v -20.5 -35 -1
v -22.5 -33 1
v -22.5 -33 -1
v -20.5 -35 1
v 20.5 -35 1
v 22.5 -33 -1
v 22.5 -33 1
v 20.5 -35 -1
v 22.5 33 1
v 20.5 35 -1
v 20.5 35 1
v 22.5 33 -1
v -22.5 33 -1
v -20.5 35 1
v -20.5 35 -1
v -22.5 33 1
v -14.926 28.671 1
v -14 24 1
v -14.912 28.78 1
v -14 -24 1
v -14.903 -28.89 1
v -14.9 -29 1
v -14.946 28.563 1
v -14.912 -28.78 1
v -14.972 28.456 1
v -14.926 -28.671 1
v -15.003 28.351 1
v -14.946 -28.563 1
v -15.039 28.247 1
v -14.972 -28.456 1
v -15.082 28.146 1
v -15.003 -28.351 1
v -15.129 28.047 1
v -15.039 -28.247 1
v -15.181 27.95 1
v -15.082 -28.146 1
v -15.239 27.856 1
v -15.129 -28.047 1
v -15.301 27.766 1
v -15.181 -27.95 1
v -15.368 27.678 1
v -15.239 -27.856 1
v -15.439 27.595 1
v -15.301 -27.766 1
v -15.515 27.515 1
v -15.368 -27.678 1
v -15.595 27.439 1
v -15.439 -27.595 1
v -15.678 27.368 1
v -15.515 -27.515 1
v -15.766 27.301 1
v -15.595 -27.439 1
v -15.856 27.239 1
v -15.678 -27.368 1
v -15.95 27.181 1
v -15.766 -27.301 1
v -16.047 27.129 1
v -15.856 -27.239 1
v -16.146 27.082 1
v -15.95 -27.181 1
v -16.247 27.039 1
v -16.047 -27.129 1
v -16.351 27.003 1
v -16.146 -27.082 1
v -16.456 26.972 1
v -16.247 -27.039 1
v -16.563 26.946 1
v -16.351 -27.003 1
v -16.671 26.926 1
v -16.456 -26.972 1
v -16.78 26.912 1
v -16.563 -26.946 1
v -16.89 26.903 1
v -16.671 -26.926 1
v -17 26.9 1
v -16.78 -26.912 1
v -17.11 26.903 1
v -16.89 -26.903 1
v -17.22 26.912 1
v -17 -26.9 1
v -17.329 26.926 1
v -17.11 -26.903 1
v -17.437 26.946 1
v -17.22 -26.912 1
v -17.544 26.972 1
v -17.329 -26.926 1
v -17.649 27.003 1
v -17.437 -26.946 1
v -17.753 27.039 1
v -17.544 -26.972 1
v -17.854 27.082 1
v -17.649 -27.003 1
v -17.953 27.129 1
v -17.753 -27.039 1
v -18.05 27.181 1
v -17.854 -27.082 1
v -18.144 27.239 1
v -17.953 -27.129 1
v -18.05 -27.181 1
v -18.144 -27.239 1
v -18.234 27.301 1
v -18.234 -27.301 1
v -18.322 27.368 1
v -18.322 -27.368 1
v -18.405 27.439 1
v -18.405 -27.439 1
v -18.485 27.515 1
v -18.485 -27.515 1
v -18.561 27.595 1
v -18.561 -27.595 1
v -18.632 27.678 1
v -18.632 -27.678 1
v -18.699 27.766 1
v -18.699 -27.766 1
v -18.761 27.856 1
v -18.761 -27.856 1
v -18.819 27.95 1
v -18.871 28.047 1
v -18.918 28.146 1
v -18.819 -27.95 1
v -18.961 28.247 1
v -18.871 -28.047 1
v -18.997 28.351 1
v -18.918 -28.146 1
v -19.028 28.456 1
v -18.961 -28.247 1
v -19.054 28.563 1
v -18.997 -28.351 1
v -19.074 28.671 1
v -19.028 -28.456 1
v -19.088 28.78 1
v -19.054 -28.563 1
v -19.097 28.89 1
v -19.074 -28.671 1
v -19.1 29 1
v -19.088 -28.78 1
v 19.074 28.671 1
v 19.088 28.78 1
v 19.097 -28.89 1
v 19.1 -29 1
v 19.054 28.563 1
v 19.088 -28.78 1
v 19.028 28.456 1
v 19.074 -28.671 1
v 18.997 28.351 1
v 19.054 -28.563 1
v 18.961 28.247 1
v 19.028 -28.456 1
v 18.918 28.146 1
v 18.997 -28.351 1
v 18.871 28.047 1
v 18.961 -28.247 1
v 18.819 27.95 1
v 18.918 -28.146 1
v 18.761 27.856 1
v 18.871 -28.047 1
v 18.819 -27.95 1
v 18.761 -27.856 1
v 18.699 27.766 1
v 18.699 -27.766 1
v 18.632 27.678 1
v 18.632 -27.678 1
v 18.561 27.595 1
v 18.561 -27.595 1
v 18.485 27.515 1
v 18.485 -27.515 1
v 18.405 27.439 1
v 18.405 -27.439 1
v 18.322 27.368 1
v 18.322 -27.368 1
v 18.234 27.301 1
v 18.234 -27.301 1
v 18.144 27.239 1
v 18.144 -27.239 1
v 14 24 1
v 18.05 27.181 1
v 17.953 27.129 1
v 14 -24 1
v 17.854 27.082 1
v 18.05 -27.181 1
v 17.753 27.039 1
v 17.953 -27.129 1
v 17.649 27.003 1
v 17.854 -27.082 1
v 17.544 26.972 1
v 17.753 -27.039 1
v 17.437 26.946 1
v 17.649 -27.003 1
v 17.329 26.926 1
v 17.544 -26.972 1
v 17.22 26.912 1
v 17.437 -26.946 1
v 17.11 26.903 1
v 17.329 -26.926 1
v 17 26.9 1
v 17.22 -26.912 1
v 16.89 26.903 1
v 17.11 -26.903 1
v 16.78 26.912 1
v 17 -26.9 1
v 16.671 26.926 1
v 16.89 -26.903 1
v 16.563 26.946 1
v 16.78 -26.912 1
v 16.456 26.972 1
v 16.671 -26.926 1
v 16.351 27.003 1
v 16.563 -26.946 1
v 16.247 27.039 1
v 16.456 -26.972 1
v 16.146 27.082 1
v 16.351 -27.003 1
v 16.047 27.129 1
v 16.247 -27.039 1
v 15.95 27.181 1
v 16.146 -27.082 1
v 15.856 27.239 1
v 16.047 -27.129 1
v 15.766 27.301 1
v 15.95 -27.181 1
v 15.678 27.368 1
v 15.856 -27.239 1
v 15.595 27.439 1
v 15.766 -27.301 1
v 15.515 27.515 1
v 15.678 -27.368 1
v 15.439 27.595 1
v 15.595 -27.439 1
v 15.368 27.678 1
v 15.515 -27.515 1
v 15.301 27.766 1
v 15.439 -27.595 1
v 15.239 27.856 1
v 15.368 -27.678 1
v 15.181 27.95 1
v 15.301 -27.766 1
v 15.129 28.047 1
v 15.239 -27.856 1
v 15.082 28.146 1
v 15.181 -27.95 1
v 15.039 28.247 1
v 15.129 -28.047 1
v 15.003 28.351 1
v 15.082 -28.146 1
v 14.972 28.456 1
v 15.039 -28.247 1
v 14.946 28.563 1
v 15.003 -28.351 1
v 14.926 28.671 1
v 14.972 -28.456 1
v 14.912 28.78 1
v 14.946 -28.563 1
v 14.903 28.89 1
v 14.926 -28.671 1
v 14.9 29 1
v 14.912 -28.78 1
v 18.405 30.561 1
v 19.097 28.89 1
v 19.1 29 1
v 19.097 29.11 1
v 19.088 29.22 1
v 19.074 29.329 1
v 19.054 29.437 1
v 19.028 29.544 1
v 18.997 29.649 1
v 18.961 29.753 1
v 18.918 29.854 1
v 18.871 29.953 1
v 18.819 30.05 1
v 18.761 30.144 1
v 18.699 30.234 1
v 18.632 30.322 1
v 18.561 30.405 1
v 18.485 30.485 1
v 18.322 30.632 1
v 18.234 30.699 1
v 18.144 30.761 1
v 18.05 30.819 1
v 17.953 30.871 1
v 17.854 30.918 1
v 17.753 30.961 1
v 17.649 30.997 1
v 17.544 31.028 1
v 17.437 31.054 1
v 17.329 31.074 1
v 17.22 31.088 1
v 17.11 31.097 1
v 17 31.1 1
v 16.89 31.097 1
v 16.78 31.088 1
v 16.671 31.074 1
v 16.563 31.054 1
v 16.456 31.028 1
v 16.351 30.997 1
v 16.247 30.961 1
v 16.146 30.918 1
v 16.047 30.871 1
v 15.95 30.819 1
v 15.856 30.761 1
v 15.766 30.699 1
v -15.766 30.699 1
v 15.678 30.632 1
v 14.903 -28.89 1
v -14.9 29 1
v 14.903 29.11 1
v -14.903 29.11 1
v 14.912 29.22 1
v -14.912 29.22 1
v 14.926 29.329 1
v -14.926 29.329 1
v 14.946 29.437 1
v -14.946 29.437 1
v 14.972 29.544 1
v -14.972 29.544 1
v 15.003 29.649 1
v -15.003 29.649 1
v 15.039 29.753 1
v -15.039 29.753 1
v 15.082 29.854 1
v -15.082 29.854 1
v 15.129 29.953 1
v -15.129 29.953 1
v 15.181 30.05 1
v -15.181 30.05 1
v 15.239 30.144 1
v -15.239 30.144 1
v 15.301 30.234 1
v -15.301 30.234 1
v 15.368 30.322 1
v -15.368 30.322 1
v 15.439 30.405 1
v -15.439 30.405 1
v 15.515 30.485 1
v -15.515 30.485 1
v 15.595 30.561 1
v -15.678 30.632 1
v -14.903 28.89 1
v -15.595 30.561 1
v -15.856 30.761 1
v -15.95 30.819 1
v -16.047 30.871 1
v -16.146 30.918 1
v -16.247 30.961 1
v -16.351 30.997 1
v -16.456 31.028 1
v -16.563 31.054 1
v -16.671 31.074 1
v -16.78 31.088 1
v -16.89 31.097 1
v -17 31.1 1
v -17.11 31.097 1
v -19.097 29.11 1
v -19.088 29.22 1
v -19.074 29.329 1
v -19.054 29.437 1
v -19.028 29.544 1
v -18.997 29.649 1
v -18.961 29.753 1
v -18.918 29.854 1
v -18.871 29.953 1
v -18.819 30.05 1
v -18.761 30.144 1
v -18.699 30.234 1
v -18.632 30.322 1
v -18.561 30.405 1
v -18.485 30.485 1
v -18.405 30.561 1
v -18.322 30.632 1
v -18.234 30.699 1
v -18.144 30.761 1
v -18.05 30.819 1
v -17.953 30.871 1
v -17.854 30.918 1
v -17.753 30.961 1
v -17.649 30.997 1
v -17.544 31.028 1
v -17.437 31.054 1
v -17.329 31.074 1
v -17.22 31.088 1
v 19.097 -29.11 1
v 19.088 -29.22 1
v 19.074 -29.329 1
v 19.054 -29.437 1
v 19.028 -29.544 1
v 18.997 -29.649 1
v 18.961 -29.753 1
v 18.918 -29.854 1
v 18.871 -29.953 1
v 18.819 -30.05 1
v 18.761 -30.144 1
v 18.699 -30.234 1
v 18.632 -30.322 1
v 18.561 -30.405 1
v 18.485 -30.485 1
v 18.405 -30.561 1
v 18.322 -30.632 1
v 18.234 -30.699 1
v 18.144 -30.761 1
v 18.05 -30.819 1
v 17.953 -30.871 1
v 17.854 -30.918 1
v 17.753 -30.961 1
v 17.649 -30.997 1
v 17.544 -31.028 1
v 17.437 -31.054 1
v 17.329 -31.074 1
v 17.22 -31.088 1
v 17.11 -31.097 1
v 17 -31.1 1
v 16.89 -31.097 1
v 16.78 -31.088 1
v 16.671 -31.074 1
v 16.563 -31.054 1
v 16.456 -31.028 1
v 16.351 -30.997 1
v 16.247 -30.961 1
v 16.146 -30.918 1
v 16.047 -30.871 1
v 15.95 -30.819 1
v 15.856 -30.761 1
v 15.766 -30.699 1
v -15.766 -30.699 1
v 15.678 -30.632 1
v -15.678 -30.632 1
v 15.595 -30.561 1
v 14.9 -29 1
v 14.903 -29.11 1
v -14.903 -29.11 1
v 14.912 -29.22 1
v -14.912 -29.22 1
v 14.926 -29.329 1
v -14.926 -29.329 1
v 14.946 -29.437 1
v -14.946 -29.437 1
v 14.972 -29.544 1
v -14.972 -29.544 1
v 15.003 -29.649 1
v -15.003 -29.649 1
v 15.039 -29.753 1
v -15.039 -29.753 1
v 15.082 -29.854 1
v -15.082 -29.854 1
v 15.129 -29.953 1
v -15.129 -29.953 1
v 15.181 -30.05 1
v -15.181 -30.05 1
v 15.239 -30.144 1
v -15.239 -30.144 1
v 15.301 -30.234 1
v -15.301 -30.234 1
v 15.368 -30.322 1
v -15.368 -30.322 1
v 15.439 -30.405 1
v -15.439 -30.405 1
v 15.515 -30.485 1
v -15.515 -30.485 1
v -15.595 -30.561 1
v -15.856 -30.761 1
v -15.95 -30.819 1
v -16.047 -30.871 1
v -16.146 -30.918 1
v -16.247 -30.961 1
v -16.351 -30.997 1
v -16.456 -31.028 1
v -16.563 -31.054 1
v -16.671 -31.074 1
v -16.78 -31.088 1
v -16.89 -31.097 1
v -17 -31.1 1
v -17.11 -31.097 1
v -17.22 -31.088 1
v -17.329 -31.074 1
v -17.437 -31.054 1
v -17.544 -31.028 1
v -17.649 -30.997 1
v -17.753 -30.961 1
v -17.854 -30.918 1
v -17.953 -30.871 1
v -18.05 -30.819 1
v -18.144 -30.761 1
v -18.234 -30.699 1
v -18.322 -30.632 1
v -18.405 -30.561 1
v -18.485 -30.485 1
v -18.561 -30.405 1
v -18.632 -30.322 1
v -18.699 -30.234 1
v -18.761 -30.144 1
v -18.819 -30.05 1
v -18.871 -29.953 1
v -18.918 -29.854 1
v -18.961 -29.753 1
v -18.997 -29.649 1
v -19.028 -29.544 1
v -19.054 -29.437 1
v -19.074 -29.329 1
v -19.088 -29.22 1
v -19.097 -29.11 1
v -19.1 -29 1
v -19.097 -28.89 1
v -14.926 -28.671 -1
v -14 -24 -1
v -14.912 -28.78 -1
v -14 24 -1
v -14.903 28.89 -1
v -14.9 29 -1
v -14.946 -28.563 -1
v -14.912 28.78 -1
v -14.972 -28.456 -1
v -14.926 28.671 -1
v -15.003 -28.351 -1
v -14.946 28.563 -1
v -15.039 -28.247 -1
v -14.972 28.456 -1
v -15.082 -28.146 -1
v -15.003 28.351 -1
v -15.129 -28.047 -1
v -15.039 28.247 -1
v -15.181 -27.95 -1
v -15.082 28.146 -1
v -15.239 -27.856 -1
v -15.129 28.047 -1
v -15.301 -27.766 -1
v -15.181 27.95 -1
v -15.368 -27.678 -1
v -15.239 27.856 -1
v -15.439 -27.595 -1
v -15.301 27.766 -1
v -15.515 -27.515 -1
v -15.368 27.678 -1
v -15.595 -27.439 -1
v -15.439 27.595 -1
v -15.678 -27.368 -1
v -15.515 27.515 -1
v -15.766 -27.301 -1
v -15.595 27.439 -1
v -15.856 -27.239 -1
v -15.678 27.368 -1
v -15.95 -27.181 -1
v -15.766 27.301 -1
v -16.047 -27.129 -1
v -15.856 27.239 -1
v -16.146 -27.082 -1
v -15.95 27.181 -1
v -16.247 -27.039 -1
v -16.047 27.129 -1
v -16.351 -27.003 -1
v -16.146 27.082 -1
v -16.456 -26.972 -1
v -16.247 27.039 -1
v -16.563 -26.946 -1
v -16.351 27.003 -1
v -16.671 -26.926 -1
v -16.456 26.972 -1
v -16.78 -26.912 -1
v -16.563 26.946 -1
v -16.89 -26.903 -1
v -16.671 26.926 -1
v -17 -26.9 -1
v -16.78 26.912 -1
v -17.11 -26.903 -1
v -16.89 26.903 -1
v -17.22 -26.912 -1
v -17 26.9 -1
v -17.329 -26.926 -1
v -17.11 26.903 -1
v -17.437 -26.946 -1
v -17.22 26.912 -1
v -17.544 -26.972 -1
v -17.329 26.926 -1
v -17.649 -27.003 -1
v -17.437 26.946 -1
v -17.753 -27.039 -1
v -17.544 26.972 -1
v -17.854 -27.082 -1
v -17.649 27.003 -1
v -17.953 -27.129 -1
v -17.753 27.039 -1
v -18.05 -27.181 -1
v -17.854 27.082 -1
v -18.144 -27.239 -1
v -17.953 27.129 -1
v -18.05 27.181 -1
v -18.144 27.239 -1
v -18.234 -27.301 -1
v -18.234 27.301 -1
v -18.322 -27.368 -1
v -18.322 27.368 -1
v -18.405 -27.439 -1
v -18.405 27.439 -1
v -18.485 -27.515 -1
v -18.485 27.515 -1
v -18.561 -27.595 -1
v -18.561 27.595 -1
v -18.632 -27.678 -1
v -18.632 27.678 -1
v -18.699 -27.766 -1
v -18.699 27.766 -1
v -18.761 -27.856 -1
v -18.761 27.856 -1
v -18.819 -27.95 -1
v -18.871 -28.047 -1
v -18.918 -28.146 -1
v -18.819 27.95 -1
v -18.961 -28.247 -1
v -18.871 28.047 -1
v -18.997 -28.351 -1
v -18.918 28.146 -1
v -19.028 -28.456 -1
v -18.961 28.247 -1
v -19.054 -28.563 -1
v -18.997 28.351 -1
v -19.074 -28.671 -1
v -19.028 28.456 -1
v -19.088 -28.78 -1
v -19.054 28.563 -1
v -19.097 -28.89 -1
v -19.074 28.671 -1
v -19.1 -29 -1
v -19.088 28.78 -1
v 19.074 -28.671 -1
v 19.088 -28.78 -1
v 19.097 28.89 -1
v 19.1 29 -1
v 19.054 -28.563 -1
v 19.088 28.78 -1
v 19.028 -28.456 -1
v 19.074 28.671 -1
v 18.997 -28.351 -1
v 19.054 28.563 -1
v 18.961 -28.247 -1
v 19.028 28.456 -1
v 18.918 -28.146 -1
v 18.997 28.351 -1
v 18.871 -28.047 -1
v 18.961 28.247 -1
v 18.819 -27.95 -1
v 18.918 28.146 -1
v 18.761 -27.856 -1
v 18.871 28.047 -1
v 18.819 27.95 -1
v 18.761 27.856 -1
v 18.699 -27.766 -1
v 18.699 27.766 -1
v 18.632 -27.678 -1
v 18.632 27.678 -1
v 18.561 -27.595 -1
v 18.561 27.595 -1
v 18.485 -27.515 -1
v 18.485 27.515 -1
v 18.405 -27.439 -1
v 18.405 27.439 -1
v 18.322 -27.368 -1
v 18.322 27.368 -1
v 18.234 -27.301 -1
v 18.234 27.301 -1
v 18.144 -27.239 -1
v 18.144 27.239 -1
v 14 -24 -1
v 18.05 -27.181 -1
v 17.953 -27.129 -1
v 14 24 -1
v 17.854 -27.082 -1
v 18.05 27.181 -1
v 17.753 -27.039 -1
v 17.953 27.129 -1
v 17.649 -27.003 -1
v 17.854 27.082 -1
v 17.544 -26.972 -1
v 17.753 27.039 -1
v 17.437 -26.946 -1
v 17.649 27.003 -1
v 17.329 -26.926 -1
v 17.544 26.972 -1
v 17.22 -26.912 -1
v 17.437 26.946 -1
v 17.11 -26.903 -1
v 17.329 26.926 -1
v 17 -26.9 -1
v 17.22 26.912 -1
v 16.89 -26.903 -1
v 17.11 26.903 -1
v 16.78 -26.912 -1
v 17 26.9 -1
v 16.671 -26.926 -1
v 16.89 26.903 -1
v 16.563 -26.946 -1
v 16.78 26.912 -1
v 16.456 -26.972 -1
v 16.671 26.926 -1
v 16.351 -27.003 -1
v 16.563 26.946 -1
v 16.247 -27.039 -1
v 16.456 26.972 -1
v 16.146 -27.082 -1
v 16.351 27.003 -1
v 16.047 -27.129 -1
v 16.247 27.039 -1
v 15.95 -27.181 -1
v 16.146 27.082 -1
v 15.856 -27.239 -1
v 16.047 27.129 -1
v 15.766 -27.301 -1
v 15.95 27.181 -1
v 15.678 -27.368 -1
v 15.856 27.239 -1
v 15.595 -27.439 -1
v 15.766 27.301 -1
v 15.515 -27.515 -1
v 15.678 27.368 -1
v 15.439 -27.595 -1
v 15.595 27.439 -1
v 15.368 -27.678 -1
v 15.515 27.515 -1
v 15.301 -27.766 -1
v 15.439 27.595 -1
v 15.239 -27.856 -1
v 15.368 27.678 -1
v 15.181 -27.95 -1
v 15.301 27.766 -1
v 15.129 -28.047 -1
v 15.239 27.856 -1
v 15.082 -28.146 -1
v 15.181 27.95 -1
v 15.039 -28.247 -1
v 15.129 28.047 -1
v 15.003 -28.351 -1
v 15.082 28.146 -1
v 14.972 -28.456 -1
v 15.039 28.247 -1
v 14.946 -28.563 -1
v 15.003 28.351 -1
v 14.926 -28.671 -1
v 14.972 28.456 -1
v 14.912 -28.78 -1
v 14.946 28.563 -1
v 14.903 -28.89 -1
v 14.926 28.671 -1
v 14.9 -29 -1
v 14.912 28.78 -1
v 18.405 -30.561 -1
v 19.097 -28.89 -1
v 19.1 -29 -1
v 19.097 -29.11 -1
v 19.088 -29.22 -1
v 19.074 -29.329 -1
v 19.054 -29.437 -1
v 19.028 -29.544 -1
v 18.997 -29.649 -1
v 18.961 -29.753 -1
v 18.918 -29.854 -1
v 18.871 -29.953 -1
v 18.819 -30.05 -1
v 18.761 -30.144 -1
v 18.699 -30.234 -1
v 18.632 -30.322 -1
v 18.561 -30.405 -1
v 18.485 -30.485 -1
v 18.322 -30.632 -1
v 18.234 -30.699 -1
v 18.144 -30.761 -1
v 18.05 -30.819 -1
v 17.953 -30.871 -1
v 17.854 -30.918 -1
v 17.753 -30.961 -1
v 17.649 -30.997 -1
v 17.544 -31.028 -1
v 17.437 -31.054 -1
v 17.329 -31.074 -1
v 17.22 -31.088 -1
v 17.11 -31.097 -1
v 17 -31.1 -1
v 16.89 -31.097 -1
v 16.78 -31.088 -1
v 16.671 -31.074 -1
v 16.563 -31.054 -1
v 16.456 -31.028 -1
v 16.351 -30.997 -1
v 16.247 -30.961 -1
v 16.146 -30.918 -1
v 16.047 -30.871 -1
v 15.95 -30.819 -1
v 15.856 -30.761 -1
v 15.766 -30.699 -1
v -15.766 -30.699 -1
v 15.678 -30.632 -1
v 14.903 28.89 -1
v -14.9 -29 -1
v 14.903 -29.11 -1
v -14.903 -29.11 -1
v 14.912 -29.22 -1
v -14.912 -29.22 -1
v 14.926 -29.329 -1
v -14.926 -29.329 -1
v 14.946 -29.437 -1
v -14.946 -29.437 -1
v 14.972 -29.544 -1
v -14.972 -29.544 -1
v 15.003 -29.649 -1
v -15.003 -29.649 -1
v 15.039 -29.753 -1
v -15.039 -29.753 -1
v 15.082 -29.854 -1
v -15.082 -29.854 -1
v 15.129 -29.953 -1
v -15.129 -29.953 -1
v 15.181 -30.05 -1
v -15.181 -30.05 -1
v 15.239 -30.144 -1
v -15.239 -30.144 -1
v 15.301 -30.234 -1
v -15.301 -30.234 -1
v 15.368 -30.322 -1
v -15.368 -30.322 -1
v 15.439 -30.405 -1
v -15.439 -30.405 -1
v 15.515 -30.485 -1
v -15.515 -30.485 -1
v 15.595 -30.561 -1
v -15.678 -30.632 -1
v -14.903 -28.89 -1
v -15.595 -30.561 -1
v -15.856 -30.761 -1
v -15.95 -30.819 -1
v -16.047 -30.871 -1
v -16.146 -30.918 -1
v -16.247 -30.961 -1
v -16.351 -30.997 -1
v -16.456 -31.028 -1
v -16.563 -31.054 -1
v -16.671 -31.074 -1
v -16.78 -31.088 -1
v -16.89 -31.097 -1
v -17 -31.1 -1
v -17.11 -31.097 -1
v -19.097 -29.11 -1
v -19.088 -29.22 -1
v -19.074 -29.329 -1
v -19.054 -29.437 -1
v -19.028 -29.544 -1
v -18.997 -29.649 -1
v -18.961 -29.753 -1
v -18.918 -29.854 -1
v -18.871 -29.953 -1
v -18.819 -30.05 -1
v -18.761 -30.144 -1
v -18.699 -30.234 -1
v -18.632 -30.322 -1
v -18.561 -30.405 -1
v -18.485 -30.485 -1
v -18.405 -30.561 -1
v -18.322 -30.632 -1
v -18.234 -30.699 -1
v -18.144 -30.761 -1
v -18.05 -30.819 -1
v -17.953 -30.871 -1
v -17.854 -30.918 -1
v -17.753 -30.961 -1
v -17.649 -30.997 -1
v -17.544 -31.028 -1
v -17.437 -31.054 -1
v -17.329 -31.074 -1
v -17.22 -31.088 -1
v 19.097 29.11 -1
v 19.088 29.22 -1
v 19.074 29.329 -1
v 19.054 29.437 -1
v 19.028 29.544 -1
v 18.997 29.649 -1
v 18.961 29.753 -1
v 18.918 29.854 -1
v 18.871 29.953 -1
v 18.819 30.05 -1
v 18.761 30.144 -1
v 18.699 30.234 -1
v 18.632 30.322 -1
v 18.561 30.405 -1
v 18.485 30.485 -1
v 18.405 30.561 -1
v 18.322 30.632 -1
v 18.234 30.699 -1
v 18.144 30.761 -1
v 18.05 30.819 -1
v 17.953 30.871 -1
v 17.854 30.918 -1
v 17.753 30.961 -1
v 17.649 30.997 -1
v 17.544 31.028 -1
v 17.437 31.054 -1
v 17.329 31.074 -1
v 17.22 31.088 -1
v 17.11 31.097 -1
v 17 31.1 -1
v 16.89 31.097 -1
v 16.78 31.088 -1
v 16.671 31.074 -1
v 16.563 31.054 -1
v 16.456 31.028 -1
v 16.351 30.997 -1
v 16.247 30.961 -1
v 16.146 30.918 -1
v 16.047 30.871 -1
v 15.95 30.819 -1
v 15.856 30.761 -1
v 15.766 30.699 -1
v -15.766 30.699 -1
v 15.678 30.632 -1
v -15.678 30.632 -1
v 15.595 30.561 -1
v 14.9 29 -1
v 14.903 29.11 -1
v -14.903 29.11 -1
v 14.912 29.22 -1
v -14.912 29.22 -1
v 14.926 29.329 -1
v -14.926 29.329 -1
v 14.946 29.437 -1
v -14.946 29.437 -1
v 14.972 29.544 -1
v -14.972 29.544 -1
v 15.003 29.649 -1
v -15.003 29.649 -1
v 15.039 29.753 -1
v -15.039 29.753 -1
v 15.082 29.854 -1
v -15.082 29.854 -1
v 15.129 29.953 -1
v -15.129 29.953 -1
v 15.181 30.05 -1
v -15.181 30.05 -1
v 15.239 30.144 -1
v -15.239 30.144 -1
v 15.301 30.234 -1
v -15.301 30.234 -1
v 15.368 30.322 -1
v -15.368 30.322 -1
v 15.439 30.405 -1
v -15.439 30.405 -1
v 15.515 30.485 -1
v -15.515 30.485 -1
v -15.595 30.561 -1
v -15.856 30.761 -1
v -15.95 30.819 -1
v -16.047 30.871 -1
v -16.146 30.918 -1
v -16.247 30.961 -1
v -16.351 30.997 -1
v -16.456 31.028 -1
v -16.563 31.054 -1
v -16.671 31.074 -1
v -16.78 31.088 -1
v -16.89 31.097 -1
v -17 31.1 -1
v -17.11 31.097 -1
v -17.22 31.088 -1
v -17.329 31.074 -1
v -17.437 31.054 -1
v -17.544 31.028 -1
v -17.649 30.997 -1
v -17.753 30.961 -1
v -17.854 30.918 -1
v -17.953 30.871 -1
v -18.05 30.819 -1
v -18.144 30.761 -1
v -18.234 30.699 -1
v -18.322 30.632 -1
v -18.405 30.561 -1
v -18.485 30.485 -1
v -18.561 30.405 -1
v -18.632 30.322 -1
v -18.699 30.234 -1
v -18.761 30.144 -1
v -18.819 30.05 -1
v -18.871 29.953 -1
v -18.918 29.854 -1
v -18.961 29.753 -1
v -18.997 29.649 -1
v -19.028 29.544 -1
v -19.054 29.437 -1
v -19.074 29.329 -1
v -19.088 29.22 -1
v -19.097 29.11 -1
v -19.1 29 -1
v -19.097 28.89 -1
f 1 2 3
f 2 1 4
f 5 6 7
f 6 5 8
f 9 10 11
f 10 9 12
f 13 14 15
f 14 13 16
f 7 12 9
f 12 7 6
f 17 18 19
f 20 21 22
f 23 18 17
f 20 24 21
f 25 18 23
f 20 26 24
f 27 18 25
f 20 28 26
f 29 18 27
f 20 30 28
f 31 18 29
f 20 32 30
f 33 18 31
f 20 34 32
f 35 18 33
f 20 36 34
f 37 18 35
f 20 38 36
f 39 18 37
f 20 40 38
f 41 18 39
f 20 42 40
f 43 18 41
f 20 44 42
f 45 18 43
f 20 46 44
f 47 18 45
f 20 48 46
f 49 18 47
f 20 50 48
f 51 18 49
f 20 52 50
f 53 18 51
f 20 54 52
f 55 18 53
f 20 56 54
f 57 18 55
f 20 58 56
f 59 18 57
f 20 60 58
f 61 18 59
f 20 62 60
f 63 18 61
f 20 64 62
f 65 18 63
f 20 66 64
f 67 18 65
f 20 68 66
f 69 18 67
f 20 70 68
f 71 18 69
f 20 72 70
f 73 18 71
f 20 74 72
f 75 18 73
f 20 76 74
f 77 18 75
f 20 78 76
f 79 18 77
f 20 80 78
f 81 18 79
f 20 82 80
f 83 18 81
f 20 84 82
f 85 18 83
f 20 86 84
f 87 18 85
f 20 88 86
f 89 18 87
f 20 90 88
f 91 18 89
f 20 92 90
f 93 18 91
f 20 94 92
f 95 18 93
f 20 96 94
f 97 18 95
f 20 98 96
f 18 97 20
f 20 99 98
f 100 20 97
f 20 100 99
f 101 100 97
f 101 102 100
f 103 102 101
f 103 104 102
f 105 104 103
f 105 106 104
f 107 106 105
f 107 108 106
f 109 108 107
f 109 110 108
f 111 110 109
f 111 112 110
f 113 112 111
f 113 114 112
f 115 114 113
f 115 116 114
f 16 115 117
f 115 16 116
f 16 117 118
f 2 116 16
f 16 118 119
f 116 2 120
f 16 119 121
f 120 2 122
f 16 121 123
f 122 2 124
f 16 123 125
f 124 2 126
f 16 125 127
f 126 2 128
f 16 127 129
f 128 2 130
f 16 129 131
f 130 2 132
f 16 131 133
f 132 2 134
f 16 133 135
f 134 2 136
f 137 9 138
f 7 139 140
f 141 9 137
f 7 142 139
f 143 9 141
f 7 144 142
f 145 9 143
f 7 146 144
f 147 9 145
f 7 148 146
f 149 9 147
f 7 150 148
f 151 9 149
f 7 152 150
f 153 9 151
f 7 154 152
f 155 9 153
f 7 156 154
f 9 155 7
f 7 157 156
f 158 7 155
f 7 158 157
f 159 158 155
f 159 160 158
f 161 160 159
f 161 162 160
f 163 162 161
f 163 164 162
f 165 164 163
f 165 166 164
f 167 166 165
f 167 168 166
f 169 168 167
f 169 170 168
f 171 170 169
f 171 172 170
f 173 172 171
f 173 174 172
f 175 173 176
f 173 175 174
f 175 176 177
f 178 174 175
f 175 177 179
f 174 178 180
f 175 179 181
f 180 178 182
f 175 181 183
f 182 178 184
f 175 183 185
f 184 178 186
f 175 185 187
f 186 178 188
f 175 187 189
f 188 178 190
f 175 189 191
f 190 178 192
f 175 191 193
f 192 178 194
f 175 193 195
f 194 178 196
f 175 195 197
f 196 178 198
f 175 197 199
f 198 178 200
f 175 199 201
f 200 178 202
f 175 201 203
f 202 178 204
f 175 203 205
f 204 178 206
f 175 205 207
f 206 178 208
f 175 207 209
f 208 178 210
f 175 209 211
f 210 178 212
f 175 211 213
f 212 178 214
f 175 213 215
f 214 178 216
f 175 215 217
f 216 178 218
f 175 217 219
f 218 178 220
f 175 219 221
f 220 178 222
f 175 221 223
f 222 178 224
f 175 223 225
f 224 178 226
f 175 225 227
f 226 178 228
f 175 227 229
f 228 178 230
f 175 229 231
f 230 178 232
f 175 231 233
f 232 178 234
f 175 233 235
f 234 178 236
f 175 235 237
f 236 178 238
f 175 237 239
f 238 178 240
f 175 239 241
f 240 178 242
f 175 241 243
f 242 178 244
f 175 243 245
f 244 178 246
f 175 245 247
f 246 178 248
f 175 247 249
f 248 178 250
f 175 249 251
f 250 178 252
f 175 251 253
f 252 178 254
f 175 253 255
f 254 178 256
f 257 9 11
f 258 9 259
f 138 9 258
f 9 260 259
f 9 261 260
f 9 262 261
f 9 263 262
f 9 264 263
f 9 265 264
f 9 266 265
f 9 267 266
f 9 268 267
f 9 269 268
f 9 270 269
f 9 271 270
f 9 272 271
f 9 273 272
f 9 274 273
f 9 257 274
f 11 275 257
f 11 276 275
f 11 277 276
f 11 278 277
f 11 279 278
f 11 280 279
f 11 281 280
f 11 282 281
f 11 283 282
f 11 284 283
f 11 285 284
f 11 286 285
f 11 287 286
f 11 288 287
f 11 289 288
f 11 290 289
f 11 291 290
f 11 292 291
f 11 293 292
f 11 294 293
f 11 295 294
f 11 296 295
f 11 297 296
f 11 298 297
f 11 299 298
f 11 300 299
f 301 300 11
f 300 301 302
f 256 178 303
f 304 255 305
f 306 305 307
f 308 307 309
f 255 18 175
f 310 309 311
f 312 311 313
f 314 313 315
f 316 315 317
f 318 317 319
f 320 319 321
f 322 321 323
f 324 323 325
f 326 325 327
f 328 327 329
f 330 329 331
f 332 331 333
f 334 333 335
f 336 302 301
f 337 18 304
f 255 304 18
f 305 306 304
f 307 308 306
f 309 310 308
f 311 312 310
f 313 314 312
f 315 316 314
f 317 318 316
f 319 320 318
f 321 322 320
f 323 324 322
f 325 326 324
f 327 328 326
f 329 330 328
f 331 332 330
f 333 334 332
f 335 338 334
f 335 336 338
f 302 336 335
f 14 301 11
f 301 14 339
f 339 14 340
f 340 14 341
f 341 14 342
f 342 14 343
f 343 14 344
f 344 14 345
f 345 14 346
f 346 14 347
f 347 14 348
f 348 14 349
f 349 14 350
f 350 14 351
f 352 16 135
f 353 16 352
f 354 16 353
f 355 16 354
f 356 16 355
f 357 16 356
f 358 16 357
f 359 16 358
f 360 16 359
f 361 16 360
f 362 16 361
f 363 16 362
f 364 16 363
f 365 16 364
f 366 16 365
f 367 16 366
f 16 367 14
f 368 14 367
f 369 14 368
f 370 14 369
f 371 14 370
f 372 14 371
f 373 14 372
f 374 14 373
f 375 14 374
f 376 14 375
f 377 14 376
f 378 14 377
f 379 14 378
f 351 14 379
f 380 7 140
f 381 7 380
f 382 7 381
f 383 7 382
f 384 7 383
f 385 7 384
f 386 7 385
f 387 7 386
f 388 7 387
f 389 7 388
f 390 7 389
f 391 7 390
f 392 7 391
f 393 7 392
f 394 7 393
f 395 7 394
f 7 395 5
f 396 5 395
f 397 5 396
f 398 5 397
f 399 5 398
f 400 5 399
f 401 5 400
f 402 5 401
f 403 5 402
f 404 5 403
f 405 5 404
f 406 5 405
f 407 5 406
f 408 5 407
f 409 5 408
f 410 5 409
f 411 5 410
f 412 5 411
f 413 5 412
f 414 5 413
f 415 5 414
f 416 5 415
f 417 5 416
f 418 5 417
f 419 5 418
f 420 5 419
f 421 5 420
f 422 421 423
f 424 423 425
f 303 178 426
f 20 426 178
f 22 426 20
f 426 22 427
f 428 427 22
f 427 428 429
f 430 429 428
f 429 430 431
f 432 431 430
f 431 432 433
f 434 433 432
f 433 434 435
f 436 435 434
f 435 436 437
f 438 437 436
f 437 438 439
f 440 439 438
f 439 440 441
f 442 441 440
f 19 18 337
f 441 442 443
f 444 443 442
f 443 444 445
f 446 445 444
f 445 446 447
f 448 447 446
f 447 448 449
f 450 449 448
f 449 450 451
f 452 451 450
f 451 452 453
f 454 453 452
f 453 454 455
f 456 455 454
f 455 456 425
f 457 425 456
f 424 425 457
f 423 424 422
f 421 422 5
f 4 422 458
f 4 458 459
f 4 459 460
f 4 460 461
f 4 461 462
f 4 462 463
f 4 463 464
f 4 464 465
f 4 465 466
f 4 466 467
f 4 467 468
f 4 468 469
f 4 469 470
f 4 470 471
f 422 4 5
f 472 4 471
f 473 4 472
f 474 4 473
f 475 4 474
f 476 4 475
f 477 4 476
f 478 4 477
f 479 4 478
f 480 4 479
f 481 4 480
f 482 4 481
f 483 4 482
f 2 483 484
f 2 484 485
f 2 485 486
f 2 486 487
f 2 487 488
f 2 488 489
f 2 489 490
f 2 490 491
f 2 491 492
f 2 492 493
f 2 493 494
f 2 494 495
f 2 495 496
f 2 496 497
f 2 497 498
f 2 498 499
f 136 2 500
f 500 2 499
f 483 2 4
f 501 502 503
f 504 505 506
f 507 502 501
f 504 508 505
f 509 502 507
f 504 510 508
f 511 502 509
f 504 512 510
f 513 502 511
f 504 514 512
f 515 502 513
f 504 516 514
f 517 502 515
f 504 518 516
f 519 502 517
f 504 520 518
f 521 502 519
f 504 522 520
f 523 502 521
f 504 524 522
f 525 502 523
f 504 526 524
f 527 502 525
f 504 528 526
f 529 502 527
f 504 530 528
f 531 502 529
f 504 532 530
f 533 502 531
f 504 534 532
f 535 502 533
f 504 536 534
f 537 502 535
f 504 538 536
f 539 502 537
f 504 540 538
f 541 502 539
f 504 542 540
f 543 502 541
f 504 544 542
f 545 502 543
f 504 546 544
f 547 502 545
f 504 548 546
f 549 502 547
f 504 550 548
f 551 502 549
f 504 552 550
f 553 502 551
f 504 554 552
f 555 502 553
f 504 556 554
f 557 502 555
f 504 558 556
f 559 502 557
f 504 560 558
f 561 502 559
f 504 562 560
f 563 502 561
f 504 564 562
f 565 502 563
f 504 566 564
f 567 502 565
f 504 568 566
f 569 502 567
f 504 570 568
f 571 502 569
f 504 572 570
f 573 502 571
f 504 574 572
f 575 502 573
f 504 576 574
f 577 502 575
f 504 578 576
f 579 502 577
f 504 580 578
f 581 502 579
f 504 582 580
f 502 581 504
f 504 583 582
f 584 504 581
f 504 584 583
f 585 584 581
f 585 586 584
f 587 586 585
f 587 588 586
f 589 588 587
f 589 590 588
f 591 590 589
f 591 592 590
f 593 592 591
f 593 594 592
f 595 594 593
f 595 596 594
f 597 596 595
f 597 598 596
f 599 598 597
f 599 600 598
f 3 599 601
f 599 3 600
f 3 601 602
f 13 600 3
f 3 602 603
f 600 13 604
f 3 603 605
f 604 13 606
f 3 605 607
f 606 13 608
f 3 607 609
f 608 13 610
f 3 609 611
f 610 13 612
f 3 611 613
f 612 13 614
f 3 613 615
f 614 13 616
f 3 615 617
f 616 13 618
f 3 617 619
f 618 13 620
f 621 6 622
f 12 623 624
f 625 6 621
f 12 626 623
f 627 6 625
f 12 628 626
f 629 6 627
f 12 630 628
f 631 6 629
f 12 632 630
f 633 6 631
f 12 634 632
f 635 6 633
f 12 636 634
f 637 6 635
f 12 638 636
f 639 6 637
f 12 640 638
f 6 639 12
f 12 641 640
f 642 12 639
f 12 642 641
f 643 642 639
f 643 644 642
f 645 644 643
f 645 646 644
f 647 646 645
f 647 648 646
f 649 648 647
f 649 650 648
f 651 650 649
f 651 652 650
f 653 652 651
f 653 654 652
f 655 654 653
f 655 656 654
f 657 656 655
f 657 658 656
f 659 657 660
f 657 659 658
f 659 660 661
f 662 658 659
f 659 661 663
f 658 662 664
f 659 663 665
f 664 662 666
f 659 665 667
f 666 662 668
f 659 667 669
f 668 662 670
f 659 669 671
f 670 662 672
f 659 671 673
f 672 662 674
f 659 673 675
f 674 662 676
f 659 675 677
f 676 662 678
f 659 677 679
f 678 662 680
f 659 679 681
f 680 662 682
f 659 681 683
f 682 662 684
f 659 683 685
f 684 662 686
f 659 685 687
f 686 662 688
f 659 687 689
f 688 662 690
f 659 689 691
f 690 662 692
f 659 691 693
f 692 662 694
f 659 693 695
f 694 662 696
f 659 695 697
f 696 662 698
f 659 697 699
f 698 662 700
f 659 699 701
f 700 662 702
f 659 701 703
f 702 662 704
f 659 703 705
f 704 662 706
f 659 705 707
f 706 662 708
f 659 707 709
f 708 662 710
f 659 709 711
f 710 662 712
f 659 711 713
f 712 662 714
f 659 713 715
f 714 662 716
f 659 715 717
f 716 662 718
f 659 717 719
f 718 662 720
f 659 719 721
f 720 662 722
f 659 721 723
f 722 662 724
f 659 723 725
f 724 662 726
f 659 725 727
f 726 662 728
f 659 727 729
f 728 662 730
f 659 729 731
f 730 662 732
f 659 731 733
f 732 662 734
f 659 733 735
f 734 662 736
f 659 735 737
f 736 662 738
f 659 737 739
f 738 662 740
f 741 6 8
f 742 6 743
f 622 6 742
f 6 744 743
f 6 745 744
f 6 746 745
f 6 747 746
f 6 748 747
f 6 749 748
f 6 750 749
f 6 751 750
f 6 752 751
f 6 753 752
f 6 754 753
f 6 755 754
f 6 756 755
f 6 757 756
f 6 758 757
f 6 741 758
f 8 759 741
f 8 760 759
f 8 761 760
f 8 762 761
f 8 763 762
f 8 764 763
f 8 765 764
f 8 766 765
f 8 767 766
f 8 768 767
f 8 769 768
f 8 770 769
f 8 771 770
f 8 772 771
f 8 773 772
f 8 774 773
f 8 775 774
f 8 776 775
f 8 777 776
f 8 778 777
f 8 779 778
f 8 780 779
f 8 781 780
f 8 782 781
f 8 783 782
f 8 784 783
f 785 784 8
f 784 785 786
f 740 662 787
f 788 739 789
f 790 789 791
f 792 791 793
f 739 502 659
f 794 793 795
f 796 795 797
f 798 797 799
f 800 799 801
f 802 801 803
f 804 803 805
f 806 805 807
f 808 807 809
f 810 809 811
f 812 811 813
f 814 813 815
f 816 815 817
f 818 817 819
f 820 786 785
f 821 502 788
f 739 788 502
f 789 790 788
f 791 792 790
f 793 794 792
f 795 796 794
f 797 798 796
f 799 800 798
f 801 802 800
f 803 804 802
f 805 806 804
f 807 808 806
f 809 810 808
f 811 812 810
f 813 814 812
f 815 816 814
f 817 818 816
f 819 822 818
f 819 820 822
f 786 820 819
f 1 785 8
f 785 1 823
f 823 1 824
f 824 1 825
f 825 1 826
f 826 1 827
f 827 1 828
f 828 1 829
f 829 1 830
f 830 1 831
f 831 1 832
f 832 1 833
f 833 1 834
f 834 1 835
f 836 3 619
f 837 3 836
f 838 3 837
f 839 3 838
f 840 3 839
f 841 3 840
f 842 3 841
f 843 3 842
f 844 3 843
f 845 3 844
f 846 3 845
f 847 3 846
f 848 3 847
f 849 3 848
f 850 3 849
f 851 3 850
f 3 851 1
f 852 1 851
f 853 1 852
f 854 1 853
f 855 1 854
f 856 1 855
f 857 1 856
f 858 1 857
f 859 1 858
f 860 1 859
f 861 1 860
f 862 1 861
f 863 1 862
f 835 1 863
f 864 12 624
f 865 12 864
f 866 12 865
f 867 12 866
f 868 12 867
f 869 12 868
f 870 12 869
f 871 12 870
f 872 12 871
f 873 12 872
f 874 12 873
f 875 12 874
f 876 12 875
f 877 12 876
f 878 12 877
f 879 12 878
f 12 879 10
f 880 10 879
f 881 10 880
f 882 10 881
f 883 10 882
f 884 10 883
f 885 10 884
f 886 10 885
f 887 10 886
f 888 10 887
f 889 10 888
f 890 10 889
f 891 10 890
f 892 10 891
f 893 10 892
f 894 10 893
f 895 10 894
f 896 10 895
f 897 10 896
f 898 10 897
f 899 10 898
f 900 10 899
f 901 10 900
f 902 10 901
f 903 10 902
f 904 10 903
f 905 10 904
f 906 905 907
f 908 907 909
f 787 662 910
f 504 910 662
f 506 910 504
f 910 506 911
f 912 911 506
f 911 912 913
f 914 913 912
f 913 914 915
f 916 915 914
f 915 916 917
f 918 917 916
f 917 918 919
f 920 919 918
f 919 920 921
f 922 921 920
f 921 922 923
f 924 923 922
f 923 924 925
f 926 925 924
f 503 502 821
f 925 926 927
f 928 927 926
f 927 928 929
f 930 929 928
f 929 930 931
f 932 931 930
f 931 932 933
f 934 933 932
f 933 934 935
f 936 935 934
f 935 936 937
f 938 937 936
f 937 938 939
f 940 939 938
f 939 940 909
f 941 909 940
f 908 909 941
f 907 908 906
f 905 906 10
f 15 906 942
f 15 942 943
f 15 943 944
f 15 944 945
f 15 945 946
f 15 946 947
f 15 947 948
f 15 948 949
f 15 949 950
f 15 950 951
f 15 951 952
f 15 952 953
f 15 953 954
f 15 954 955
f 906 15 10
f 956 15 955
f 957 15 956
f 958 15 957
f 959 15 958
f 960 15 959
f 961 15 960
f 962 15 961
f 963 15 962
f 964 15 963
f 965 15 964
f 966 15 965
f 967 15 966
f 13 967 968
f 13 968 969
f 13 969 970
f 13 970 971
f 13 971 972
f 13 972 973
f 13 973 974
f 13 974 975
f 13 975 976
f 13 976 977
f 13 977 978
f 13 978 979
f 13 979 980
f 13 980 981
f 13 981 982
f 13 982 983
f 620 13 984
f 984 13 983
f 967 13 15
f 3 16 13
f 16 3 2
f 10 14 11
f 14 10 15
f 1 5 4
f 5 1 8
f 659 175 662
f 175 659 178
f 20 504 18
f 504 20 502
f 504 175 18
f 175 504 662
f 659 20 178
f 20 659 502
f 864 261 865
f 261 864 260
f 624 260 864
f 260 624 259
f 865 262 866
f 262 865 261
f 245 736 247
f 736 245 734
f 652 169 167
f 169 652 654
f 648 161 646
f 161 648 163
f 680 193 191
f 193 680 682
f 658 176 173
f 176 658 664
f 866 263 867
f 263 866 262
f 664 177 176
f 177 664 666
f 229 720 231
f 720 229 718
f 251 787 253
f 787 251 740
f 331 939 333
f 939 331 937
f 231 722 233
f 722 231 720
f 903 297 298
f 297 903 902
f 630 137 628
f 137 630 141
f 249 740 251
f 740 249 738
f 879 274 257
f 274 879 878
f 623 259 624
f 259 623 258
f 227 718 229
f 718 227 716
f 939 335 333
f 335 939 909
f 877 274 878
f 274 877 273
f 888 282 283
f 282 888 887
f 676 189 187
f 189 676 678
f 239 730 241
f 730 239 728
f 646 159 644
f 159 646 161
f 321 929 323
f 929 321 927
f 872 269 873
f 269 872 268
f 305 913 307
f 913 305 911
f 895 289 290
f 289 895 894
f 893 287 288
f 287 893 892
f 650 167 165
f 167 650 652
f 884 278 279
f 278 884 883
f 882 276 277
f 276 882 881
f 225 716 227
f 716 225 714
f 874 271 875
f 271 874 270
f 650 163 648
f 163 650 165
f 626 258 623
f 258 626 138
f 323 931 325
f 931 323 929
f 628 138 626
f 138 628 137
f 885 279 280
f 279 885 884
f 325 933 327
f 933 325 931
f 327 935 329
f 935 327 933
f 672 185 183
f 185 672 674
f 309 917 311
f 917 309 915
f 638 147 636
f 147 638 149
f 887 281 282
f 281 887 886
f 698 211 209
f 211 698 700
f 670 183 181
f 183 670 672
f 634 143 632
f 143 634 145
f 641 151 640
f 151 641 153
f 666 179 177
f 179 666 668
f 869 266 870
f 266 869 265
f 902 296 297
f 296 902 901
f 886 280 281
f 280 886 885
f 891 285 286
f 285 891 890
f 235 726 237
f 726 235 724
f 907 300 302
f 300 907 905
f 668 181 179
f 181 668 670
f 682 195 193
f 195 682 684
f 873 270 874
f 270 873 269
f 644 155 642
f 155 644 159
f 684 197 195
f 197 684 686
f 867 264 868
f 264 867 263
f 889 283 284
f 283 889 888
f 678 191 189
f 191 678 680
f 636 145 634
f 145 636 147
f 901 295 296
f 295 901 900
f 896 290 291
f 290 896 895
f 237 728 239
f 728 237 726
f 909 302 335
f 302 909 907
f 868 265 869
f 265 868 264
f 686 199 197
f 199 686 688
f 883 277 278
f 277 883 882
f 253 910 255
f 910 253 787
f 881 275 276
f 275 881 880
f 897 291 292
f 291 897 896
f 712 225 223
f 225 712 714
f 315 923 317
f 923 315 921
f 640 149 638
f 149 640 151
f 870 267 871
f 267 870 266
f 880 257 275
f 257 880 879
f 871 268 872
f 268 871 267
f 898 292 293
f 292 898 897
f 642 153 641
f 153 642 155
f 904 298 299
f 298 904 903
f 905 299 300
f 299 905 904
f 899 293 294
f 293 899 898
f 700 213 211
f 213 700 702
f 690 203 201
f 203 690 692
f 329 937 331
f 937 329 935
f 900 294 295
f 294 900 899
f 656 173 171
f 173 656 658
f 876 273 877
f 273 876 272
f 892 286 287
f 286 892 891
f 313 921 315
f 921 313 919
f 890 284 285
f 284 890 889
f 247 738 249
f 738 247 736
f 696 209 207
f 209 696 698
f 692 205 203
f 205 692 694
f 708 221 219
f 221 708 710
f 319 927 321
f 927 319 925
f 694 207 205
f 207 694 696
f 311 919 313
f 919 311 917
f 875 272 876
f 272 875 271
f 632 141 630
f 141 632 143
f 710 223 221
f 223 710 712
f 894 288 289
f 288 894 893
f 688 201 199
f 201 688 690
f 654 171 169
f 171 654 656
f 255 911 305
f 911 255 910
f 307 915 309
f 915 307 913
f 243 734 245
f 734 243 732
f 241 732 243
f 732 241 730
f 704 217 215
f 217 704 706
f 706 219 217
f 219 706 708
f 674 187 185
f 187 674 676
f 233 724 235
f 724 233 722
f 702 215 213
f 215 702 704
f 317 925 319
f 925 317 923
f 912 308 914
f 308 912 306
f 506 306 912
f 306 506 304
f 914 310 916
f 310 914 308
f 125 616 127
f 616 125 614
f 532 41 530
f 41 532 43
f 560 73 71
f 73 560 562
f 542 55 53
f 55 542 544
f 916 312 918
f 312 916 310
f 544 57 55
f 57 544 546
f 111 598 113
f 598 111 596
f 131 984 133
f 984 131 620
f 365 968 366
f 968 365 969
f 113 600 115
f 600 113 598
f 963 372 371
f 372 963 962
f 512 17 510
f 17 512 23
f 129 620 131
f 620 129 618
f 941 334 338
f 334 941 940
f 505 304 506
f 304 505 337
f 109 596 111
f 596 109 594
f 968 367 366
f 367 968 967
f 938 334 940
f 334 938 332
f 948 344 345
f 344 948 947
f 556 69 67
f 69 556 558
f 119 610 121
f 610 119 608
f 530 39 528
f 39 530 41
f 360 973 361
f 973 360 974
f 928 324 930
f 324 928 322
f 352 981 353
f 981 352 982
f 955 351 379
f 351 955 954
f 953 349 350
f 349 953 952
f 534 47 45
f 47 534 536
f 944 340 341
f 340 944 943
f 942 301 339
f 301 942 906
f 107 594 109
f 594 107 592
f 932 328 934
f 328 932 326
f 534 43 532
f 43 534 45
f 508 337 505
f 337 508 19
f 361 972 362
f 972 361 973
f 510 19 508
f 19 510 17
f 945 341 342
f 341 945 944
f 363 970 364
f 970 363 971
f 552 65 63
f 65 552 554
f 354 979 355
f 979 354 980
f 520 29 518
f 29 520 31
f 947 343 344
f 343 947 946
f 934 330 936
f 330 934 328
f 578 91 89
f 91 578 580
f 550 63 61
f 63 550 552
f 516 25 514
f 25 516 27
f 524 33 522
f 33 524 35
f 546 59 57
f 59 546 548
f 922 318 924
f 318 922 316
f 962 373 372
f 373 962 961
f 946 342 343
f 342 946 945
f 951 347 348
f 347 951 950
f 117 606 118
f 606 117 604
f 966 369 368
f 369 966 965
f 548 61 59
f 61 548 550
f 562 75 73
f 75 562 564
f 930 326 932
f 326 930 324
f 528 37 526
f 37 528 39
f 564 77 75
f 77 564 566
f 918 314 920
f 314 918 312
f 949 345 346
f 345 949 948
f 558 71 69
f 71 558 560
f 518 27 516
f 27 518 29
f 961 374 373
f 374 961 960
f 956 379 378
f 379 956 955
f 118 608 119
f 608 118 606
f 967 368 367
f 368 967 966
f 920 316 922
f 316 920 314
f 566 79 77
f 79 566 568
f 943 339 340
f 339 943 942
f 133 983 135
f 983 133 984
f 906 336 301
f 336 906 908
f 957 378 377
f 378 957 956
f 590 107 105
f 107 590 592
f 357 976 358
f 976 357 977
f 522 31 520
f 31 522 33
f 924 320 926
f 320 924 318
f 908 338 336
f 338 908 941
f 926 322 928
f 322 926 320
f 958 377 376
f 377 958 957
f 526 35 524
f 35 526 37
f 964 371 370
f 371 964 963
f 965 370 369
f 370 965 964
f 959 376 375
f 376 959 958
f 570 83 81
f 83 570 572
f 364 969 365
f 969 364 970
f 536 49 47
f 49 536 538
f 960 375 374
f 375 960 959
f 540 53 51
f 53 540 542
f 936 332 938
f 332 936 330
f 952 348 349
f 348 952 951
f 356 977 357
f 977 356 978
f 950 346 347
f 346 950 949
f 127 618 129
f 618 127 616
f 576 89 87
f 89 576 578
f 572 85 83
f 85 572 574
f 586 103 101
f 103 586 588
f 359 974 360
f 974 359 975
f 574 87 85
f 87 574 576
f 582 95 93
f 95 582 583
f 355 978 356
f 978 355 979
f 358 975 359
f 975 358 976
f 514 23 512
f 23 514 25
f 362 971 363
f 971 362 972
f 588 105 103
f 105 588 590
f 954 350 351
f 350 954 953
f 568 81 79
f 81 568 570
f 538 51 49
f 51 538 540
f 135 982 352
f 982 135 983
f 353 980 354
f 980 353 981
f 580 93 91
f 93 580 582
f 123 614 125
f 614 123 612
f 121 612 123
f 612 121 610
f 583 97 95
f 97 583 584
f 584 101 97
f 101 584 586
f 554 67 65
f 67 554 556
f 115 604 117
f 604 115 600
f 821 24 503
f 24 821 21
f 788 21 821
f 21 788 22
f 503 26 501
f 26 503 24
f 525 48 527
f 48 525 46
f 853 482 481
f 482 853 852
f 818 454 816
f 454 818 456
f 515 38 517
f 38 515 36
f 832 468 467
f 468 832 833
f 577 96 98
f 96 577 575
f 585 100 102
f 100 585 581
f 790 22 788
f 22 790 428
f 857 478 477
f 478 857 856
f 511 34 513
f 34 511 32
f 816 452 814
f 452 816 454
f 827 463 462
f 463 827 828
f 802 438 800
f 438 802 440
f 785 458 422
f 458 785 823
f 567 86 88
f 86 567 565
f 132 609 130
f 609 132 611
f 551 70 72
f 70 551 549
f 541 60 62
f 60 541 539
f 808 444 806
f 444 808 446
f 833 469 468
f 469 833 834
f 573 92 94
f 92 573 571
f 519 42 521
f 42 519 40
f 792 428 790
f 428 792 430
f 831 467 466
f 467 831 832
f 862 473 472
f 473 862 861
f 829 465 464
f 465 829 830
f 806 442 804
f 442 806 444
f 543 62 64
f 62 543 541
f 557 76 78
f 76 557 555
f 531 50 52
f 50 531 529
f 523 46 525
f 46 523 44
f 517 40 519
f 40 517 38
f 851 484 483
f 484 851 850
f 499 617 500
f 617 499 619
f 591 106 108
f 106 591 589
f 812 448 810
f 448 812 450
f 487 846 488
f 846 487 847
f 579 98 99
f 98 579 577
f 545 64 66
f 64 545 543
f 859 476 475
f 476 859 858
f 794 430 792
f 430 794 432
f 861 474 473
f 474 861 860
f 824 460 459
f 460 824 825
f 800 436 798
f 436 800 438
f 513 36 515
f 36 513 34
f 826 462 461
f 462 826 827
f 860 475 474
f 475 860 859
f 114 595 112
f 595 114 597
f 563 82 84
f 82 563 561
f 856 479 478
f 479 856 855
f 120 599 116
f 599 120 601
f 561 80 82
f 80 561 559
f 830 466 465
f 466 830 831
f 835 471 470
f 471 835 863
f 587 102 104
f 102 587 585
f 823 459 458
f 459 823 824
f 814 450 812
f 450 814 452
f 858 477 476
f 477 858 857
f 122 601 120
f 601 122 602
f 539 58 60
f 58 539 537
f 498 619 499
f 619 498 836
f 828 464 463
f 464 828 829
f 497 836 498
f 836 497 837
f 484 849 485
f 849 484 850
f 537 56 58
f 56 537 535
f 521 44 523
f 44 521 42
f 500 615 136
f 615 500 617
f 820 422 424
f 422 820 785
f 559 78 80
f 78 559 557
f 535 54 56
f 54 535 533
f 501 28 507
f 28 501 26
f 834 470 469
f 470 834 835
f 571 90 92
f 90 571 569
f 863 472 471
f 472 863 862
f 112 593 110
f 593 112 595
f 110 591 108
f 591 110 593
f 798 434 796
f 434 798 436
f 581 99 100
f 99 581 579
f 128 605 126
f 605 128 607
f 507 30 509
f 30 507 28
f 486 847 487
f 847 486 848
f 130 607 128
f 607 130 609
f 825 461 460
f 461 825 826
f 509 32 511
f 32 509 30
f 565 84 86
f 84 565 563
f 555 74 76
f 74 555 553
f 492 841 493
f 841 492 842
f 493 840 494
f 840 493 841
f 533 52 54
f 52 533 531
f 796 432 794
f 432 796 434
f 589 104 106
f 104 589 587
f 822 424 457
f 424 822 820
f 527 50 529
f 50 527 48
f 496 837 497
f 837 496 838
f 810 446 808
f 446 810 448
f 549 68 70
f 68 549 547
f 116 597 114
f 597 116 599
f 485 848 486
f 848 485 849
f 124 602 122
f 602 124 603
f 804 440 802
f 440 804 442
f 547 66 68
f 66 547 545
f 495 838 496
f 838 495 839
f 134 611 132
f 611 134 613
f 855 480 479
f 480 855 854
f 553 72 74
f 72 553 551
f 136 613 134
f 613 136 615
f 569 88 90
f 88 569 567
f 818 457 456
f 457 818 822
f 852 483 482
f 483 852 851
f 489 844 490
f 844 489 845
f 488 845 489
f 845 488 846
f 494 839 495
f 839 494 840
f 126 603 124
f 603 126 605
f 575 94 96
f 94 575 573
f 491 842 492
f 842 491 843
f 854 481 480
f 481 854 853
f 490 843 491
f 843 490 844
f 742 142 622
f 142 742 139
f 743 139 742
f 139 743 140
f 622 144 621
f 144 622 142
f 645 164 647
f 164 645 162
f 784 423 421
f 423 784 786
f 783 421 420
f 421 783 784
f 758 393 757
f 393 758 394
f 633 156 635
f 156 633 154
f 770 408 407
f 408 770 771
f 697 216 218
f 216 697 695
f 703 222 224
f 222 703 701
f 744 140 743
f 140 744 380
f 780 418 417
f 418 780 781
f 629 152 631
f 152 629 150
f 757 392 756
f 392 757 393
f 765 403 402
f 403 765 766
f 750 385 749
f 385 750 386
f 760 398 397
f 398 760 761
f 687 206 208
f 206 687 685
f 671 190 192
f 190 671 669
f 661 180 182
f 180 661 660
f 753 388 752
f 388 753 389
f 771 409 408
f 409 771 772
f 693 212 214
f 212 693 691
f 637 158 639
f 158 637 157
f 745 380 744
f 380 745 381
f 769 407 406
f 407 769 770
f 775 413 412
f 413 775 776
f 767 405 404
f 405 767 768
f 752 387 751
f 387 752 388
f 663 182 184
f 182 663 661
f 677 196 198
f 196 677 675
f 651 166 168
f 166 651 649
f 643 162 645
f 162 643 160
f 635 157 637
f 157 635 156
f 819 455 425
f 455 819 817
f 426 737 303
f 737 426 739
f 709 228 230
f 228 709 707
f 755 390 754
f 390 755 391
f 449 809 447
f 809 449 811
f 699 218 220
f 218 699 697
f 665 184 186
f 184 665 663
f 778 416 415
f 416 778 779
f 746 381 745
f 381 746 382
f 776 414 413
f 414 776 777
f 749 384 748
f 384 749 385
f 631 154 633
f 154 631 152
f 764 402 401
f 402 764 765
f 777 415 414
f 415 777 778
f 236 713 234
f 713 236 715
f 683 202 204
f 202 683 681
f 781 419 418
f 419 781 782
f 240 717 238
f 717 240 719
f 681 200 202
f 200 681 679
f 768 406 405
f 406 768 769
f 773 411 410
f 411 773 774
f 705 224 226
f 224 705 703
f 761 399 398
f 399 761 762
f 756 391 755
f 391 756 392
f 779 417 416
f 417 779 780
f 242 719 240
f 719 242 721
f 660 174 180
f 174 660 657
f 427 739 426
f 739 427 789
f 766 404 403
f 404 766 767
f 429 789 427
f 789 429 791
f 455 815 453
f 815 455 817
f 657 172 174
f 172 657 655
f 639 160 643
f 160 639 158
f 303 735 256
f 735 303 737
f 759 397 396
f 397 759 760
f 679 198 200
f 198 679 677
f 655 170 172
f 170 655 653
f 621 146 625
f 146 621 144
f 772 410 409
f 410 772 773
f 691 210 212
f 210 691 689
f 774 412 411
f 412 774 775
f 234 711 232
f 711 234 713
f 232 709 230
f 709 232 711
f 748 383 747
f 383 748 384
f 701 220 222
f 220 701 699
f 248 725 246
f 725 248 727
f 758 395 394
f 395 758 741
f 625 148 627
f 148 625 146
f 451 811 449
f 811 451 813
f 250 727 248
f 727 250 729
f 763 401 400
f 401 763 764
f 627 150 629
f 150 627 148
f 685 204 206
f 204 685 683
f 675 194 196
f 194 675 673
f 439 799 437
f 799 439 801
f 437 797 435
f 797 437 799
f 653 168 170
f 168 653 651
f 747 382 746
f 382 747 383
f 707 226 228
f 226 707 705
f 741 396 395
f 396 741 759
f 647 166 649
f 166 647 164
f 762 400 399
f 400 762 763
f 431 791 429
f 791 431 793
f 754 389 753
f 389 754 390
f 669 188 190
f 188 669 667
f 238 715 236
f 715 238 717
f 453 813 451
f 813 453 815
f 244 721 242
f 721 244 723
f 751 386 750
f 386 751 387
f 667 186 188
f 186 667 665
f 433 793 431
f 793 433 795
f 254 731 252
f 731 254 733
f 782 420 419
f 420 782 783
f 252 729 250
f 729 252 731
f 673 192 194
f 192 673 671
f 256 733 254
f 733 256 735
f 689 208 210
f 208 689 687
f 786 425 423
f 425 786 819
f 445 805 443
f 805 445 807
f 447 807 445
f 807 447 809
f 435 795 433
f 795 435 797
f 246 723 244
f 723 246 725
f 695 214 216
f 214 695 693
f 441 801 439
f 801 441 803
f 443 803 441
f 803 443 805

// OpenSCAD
difference(){
translate([-45/2,-70/2,-1]){    
chamferCube([45,70,2,],ch=2, chamfers =[[0, 0,0, 0], [0,0,0,0], [1, 1, 1, 1]]);
}
cube([28,48,100,],center=true);
screw_hole(17,29);
screw_hole(-17,29);
screw_hole(-17,-29);
screw_hole(17,-29);
}

hole_d=4.2;

module screw_hole(x,y){
 $fn= 120;
 height=100;
 
  
 
    translate([x,y,0]){
 
 cylinder( h=height+0.01,d=hole_d, center=true) ;
    }
}


module chamferCube(size, chamfers = [undef, undef, undef], ch = 1, ph1 = 1, ph2 = undef, ph3 = undef, ph4 = undef, sizeX = undef, sizeY = undef, sizeZ = undef, chamferHeight = undef, chamferX = undef, chamferY = undef, chamferZ = undef) {
    if(size[0]) {
        chamferCubeImpl(size[0], size[1], size[2], ch, chamfers[0], chamfers[1], chamfers[2]);
    } else {
        // keep backwards compatibility
        size     = (sizeX == undef) ? size : sizeX;
        chamfers = (sizeY == undef) ? chamfers : sizeY;
        ch       = (sizeZ == undef) ? ch : sizeZ;
        ph1      = (chamferHeight == undef) ? ph1 : chamferHeight;
        ph2      = (chamferX == undef) ? ph2 : chamferX;
        ph3      = (chamferY == undef) ? ph3 : chamferY;
        ph4      = (chamferZ == undef) ? ph4 : chamferZ;

        chamferCubeImpl(size, chamfers, ch, ph1, ph2, ph3, ph4);
    }
}

module chamferCubeImpl(sizeX, sizeY, sizeZ, chamferHeight, chamferX, chamferY, chamferZ) {
    chamferX = (chamferX == undef) ? [1, 1, 1, 1] : chamferX;
    chamferY = (chamferY == undef) ? [1, 1, 1, 1] : chamferY;
    chamferZ = (chamferZ == undef) ? [1, 1, 1, 1] : chamferZ;
    chamferCLength = sqrt(chamferHeight * chamferHeight * 2);

    difference() {
        cube([sizeX, sizeY, sizeZ]);
        for(x = [0 : 3]) {
            chamferSide1 = min(x, 1) - floor(x / 3); // 0 1 1 0
            chamferSide2 = floor(x / 2); // 0 0 1 1
            if(chamferX[x]) {
                translate([-0.1, chamferSide1 * sizeY, -chamferHeight + chamferSide2 * sizeZ])
                rotate([45, 0, 0])
                cube([sizeX + 0.2, chamferCLength, chamferCLength]);
            }
            if(chamferY[x]) {
                translate([-chamferHeight + chamferSide2 * sizeX, -0.1, chamferSide1 * sizeZ])
                rotate([0, 45, 0])
                cube([chamferCLength, sizeY + 0.2, chamferCLength]);
            }
            if(chamferZ[x]) {
                translate([chamferSide1 * sizeX, -chamferHeight + chamferSide2 * sizeY, -0.1])
                rotate([0, 0, 45])
                cube([chamferCLength, chamferCLength, sizeZ + 0.2]);
            }
        }
    }
}
